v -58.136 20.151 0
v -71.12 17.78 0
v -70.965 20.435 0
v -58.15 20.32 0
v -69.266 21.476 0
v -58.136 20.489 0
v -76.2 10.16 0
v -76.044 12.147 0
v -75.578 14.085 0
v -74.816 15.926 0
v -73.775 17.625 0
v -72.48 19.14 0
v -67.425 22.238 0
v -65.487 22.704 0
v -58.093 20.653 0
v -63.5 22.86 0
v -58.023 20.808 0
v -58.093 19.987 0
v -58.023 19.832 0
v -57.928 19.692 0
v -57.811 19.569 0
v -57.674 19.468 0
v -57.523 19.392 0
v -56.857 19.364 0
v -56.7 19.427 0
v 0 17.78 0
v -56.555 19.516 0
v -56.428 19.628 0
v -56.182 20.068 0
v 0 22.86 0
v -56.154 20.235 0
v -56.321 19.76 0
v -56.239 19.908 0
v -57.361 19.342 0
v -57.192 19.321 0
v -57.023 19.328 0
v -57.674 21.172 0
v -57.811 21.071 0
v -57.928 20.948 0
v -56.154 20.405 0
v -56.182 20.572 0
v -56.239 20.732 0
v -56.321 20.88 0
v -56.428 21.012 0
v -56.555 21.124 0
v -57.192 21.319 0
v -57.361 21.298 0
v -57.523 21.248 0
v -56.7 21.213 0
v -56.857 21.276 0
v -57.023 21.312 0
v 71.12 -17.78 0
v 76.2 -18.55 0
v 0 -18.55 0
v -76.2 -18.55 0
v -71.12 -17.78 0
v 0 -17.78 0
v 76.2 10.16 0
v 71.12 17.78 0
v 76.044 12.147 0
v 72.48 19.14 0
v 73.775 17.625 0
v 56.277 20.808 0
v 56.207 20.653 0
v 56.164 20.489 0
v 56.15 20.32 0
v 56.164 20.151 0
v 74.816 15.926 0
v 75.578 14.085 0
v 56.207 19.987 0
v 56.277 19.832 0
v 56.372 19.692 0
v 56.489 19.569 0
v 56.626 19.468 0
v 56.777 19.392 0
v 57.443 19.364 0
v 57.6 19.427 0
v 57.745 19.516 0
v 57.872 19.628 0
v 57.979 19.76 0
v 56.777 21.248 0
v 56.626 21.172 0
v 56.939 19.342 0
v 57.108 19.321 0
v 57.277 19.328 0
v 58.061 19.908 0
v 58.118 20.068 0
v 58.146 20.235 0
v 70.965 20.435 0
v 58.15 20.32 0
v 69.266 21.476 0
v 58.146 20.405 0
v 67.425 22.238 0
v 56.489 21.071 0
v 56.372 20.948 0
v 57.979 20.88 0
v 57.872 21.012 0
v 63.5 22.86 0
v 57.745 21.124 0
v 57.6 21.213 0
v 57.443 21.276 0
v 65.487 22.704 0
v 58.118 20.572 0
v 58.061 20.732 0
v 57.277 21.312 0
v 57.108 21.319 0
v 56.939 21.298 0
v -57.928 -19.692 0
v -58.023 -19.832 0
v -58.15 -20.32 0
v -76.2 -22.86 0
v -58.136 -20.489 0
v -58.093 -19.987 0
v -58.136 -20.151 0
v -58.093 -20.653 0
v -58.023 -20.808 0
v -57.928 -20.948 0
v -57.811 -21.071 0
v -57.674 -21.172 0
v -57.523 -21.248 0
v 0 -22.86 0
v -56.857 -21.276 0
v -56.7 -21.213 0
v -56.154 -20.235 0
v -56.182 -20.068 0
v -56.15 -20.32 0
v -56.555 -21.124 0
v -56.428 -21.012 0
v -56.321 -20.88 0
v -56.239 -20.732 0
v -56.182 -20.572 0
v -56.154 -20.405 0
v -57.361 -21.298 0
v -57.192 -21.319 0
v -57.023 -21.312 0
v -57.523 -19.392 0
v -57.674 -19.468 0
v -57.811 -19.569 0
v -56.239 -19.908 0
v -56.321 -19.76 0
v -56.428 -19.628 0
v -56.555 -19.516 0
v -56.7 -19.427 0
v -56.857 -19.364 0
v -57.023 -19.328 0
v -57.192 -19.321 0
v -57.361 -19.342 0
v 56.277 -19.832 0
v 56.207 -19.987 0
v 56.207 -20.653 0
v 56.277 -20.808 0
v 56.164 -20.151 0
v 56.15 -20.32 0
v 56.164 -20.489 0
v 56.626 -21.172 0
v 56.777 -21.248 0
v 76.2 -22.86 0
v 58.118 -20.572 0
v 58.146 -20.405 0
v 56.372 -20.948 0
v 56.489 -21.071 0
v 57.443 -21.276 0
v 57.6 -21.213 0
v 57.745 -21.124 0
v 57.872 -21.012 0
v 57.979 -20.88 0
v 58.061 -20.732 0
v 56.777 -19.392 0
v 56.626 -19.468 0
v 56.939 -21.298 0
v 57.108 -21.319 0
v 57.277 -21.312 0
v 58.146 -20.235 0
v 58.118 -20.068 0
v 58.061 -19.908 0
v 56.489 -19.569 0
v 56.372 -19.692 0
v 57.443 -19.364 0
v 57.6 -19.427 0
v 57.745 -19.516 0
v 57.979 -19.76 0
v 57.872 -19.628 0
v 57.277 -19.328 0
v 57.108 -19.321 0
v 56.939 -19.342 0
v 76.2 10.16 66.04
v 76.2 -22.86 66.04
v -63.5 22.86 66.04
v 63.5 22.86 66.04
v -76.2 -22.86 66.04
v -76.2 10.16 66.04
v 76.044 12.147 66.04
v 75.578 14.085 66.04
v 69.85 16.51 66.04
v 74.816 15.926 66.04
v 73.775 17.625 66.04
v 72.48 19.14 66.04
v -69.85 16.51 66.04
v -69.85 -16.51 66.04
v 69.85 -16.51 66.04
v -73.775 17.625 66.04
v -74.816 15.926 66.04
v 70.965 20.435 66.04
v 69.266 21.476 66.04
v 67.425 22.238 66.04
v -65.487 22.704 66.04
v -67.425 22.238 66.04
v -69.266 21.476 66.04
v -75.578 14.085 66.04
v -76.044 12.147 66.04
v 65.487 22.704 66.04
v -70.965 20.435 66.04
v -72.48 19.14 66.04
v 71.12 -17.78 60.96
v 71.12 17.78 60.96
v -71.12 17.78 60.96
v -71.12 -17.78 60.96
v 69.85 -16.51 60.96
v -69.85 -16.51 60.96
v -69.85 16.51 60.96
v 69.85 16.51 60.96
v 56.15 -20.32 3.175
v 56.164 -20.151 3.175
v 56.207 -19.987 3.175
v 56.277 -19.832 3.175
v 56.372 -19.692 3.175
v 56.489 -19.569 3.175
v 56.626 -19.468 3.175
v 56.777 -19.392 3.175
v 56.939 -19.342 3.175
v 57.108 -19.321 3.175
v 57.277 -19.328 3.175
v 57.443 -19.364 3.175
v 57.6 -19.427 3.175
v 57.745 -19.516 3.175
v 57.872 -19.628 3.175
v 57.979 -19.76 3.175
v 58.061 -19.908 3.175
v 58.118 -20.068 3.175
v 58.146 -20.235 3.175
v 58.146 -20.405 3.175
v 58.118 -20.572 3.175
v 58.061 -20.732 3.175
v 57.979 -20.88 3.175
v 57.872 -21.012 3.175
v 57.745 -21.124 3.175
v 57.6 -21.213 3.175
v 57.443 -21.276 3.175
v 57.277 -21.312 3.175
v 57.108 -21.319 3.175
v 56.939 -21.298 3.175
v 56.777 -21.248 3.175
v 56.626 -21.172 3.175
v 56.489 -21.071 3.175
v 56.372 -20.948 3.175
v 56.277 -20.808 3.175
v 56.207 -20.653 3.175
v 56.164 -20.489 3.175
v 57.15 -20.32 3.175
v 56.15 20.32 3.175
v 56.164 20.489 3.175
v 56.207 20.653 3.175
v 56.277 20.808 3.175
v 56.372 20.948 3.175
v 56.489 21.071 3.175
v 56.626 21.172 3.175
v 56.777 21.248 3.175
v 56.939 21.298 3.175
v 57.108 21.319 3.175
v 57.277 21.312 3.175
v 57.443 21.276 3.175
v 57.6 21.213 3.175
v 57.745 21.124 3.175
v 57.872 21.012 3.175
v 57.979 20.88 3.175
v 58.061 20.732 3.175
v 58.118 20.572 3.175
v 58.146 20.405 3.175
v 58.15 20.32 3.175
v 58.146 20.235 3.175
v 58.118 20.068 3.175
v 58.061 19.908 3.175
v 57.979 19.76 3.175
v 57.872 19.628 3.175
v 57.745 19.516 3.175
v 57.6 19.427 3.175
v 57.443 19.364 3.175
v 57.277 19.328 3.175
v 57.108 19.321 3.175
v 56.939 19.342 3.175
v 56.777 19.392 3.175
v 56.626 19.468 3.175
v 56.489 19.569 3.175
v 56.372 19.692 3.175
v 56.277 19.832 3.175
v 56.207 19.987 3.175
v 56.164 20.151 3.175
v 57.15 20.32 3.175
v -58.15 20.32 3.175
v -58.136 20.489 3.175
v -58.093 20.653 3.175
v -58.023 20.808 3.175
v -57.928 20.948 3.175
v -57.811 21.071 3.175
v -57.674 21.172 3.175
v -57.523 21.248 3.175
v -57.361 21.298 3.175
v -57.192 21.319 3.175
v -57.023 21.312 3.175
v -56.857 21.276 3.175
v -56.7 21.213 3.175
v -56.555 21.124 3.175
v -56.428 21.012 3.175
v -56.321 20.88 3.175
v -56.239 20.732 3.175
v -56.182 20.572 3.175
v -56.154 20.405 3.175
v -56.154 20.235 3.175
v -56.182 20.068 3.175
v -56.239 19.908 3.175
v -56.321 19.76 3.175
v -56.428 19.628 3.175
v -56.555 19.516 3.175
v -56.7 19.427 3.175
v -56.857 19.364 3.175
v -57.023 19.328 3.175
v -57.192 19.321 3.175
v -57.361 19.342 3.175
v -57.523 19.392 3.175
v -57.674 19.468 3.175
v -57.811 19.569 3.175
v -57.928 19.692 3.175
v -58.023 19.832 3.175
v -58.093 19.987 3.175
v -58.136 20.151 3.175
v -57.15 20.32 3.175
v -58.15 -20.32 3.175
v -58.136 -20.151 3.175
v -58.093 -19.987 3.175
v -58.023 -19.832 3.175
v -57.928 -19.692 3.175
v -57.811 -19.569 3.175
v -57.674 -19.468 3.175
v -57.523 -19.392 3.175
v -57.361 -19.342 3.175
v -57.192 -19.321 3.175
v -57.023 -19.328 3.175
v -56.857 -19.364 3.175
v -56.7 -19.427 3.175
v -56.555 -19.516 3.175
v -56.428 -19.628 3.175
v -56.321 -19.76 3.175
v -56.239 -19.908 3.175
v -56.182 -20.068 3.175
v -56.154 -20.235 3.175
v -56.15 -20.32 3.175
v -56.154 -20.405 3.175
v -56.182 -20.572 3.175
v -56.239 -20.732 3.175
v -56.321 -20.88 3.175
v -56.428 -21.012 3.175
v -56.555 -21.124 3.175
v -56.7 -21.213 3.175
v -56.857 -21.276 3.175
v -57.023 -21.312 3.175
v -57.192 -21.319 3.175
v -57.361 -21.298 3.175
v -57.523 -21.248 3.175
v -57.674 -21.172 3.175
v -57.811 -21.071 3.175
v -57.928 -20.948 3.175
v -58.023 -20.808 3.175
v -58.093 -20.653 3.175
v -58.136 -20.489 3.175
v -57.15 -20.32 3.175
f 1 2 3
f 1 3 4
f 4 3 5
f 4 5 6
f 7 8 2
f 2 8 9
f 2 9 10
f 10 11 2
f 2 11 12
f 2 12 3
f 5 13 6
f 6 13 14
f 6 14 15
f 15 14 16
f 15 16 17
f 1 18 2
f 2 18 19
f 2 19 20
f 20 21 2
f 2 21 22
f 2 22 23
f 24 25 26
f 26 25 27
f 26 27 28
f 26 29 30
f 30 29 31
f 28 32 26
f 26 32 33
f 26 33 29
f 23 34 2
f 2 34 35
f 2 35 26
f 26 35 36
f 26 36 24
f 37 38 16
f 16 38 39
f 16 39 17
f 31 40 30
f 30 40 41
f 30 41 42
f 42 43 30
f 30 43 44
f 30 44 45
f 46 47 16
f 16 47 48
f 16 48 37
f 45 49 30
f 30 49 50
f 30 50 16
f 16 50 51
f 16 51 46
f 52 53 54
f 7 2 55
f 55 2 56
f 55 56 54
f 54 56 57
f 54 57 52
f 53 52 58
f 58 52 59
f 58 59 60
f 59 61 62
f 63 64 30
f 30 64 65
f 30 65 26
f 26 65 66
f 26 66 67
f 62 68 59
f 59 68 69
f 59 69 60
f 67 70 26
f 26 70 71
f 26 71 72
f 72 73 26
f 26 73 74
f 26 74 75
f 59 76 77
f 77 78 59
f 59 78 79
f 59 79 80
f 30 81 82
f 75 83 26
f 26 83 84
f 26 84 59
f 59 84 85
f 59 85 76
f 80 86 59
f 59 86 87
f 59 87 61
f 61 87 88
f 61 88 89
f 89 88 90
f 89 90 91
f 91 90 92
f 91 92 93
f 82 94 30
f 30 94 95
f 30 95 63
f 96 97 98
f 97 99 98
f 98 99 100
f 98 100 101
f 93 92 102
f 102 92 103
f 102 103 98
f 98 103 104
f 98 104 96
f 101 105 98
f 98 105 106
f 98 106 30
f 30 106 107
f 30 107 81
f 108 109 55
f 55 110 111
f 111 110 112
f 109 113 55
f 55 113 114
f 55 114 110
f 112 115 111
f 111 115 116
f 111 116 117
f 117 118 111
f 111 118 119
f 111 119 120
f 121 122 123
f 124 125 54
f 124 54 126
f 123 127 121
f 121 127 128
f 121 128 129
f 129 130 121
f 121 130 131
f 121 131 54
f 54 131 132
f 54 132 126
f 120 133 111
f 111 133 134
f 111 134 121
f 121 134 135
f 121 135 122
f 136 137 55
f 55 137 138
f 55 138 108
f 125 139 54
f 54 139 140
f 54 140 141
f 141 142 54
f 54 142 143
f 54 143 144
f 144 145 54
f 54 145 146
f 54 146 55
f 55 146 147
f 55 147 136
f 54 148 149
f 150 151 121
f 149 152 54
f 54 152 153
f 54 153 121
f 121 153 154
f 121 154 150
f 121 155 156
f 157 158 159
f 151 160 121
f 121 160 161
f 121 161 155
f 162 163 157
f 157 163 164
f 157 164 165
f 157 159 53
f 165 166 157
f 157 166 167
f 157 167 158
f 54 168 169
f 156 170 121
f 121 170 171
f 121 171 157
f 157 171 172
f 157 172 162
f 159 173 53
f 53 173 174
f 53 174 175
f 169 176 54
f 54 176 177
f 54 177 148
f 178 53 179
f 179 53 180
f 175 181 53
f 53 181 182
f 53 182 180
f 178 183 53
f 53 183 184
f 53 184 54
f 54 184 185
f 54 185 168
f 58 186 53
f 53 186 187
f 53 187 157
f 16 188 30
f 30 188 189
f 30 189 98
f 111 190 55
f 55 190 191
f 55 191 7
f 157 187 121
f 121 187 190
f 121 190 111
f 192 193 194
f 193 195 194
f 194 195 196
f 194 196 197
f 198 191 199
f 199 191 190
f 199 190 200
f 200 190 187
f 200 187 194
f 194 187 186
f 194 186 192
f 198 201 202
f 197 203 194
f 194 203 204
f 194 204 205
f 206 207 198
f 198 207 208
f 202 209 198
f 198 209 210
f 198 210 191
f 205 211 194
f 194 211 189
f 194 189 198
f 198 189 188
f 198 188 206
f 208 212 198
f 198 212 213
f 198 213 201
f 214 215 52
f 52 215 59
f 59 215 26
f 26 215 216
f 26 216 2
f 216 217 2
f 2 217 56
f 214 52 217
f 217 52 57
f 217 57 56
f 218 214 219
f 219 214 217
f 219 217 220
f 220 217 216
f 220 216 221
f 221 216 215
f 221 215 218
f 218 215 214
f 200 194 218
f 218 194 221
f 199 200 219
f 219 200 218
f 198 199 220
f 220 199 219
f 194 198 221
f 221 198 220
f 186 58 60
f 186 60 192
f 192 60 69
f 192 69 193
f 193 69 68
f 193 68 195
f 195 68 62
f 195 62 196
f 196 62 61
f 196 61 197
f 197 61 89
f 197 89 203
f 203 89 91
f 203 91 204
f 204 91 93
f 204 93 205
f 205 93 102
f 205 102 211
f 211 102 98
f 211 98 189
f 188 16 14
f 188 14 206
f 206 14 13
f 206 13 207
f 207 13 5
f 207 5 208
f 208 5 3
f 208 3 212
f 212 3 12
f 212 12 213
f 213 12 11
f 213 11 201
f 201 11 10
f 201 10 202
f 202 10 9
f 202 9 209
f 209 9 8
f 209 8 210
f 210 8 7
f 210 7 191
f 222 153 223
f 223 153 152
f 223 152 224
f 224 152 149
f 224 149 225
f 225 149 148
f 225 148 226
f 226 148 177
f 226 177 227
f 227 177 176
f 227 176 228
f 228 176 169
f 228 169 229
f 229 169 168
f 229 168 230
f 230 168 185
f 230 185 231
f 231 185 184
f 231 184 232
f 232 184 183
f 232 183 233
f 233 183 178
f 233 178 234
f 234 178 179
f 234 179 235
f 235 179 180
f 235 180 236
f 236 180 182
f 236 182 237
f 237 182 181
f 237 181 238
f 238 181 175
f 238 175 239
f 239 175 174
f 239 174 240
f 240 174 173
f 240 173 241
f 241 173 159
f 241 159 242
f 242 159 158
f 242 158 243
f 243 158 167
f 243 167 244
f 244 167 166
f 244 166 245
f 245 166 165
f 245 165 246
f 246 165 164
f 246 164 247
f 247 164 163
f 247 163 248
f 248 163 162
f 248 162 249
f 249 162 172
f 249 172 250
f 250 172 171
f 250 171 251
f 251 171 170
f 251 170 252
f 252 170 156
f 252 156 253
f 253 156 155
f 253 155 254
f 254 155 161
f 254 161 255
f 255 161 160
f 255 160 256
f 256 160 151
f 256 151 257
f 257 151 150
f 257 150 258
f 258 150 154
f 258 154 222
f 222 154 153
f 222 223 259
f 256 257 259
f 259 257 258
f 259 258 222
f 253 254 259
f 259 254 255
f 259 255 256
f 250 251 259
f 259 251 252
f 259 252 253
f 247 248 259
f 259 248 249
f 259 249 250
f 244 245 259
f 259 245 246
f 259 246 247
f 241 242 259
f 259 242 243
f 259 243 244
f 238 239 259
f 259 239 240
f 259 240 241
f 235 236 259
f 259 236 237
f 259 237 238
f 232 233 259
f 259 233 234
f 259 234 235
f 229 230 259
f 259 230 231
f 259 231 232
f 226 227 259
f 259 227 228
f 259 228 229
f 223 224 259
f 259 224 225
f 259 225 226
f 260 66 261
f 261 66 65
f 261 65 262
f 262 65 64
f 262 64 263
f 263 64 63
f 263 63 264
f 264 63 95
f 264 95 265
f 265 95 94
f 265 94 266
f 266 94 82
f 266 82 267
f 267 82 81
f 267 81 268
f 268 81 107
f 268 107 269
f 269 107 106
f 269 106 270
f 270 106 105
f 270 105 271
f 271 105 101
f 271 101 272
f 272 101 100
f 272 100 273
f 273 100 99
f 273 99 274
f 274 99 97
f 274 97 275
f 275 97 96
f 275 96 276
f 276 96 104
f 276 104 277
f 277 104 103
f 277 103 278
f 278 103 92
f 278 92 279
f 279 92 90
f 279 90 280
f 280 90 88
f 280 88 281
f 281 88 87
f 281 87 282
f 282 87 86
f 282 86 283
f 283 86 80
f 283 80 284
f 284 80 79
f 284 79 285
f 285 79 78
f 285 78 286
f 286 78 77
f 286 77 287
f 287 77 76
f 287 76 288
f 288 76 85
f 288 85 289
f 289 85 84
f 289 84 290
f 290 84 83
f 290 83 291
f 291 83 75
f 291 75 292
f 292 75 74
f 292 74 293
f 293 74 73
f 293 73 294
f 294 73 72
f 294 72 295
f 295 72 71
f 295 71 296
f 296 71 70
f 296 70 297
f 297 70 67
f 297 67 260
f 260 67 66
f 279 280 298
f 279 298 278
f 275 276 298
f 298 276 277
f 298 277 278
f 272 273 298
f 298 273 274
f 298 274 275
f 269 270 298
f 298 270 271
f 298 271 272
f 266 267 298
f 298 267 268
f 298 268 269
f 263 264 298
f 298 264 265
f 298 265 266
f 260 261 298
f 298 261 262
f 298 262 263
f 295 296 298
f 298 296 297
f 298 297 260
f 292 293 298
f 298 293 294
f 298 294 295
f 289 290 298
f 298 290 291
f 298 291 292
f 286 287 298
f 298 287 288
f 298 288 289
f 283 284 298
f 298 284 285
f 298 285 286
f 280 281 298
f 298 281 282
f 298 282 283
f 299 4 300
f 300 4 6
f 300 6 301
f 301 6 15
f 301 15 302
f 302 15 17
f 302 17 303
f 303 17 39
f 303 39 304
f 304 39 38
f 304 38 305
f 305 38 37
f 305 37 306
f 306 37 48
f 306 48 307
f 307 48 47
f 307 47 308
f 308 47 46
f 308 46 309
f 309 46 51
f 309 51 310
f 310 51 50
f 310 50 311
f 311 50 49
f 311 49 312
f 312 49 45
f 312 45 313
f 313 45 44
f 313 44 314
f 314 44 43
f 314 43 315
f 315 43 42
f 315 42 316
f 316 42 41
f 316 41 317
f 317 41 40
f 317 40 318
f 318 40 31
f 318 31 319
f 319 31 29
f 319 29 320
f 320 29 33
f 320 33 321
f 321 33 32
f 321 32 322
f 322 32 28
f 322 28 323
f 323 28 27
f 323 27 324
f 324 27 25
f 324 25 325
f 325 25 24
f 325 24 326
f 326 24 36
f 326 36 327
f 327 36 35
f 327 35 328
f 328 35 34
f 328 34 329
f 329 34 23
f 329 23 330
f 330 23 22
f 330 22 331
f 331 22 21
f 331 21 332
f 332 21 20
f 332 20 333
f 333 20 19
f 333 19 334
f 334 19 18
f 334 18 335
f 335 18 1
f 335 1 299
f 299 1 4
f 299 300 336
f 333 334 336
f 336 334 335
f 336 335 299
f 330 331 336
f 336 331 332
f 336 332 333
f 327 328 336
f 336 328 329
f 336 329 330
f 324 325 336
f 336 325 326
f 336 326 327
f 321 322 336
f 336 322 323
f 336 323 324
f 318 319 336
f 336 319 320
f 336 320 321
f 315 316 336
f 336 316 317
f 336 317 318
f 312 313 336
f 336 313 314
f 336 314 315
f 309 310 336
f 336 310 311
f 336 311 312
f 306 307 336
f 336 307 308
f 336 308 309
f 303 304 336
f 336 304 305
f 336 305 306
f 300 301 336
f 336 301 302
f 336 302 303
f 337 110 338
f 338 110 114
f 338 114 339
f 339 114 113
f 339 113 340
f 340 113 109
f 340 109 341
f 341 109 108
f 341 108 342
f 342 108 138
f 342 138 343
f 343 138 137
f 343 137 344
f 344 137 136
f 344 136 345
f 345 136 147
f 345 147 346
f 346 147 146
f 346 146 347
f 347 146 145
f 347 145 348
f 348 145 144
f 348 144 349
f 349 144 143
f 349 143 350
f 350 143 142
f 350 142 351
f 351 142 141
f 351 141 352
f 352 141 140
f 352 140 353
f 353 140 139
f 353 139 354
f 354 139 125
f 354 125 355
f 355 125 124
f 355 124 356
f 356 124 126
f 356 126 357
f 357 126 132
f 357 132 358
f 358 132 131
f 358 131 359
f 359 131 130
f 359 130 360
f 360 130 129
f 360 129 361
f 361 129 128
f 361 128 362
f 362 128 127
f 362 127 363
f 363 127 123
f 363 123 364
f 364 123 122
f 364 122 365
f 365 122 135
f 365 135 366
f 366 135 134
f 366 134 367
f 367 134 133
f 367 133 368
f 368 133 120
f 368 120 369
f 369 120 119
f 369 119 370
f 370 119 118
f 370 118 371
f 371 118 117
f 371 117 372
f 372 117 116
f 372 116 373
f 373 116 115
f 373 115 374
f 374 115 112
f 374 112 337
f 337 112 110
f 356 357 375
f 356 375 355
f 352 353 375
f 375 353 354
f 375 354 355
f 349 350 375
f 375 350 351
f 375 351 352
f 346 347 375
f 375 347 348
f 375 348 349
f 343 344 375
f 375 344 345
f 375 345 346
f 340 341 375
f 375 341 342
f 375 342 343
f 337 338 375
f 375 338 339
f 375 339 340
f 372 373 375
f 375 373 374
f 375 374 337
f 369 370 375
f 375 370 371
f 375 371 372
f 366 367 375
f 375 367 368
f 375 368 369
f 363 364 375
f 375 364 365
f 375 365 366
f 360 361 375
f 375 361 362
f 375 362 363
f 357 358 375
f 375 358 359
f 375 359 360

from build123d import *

# Parameters (mm, degrees)
SKETCH1_W           = 152.4
SKETCH1_H           = 45.72
BOSS_EXTRUDE2_DEPTH = 66.04
SHELL1_T            = -5.08
SKETCH2_W           = 139.7
SKETCH2_H           = 33.02
CUT_EXTRUDE1_DEPTH  = 13.462
FILLET1_R           = 12.7
SKETCH4_R           = 1
CUT_EXTRUDE2_DEPTH  = 3.175


with BuildPart() as part:
    # Sketch1 → Boss-Extrude2 (new body)
    with BuildSketch(Plane.XY):
        Rectangle(SKETCH1_W, SKETCH1_H)
    extrude(amount=BOSS_EXTRUDE2_DEPTH)

    # Shell1
    shell1_openings = [part.faces().sort_by_distance(p)[0] for p in [
        (0, 0, 0),
    ]]
    offset(amount=SHELL1_T, openings=shell1_openings, kind=Kind.INTERSECTION)

    # Sketch2 → Cut-Extrude1 (cut)
    with BuildSketch(Plane.XY.offset(66.04)):
        Rectangle(SKETCH2_W, SKETCH2_H)
    extrude(amount=-CUT_EXTRUDE1_DEPTH, mode=Mode.SUBTRACT)

    # Fillet1
    fillet1_edges = [part.edges().sort_by_distance(p)[0] for p in [
        (-76.2, 22.86, 33.02),
        (76.2, 22.86, 33.02),
    ]]
    fillet(fillet1_edges, radius=FILLET1_R)

    # Sketch4 → Cut-Extrude2 (cut)
    with BuildSketch(Plane(origin=(0, 0, 0), x_dir=(-1, 0, 0), z_dir=(0, 0, -1))):
        with Locations((-57.15, -20.32)):
            Circle(SKETCH4_R)
        with Locations((-57.15, 20.32)):
            Circle(SKETCH4_R)
        with Locations((57.15, 20.32)):
            Circle(SKETCH4_R)
        with Locations((57.15, -20.32)):
            Circle(SKETCH4_R)
    extrude(amount=-CUT_EXTRUDE2_DEPTH, mode=Mode.SUBTRACT)


solid = part.part
